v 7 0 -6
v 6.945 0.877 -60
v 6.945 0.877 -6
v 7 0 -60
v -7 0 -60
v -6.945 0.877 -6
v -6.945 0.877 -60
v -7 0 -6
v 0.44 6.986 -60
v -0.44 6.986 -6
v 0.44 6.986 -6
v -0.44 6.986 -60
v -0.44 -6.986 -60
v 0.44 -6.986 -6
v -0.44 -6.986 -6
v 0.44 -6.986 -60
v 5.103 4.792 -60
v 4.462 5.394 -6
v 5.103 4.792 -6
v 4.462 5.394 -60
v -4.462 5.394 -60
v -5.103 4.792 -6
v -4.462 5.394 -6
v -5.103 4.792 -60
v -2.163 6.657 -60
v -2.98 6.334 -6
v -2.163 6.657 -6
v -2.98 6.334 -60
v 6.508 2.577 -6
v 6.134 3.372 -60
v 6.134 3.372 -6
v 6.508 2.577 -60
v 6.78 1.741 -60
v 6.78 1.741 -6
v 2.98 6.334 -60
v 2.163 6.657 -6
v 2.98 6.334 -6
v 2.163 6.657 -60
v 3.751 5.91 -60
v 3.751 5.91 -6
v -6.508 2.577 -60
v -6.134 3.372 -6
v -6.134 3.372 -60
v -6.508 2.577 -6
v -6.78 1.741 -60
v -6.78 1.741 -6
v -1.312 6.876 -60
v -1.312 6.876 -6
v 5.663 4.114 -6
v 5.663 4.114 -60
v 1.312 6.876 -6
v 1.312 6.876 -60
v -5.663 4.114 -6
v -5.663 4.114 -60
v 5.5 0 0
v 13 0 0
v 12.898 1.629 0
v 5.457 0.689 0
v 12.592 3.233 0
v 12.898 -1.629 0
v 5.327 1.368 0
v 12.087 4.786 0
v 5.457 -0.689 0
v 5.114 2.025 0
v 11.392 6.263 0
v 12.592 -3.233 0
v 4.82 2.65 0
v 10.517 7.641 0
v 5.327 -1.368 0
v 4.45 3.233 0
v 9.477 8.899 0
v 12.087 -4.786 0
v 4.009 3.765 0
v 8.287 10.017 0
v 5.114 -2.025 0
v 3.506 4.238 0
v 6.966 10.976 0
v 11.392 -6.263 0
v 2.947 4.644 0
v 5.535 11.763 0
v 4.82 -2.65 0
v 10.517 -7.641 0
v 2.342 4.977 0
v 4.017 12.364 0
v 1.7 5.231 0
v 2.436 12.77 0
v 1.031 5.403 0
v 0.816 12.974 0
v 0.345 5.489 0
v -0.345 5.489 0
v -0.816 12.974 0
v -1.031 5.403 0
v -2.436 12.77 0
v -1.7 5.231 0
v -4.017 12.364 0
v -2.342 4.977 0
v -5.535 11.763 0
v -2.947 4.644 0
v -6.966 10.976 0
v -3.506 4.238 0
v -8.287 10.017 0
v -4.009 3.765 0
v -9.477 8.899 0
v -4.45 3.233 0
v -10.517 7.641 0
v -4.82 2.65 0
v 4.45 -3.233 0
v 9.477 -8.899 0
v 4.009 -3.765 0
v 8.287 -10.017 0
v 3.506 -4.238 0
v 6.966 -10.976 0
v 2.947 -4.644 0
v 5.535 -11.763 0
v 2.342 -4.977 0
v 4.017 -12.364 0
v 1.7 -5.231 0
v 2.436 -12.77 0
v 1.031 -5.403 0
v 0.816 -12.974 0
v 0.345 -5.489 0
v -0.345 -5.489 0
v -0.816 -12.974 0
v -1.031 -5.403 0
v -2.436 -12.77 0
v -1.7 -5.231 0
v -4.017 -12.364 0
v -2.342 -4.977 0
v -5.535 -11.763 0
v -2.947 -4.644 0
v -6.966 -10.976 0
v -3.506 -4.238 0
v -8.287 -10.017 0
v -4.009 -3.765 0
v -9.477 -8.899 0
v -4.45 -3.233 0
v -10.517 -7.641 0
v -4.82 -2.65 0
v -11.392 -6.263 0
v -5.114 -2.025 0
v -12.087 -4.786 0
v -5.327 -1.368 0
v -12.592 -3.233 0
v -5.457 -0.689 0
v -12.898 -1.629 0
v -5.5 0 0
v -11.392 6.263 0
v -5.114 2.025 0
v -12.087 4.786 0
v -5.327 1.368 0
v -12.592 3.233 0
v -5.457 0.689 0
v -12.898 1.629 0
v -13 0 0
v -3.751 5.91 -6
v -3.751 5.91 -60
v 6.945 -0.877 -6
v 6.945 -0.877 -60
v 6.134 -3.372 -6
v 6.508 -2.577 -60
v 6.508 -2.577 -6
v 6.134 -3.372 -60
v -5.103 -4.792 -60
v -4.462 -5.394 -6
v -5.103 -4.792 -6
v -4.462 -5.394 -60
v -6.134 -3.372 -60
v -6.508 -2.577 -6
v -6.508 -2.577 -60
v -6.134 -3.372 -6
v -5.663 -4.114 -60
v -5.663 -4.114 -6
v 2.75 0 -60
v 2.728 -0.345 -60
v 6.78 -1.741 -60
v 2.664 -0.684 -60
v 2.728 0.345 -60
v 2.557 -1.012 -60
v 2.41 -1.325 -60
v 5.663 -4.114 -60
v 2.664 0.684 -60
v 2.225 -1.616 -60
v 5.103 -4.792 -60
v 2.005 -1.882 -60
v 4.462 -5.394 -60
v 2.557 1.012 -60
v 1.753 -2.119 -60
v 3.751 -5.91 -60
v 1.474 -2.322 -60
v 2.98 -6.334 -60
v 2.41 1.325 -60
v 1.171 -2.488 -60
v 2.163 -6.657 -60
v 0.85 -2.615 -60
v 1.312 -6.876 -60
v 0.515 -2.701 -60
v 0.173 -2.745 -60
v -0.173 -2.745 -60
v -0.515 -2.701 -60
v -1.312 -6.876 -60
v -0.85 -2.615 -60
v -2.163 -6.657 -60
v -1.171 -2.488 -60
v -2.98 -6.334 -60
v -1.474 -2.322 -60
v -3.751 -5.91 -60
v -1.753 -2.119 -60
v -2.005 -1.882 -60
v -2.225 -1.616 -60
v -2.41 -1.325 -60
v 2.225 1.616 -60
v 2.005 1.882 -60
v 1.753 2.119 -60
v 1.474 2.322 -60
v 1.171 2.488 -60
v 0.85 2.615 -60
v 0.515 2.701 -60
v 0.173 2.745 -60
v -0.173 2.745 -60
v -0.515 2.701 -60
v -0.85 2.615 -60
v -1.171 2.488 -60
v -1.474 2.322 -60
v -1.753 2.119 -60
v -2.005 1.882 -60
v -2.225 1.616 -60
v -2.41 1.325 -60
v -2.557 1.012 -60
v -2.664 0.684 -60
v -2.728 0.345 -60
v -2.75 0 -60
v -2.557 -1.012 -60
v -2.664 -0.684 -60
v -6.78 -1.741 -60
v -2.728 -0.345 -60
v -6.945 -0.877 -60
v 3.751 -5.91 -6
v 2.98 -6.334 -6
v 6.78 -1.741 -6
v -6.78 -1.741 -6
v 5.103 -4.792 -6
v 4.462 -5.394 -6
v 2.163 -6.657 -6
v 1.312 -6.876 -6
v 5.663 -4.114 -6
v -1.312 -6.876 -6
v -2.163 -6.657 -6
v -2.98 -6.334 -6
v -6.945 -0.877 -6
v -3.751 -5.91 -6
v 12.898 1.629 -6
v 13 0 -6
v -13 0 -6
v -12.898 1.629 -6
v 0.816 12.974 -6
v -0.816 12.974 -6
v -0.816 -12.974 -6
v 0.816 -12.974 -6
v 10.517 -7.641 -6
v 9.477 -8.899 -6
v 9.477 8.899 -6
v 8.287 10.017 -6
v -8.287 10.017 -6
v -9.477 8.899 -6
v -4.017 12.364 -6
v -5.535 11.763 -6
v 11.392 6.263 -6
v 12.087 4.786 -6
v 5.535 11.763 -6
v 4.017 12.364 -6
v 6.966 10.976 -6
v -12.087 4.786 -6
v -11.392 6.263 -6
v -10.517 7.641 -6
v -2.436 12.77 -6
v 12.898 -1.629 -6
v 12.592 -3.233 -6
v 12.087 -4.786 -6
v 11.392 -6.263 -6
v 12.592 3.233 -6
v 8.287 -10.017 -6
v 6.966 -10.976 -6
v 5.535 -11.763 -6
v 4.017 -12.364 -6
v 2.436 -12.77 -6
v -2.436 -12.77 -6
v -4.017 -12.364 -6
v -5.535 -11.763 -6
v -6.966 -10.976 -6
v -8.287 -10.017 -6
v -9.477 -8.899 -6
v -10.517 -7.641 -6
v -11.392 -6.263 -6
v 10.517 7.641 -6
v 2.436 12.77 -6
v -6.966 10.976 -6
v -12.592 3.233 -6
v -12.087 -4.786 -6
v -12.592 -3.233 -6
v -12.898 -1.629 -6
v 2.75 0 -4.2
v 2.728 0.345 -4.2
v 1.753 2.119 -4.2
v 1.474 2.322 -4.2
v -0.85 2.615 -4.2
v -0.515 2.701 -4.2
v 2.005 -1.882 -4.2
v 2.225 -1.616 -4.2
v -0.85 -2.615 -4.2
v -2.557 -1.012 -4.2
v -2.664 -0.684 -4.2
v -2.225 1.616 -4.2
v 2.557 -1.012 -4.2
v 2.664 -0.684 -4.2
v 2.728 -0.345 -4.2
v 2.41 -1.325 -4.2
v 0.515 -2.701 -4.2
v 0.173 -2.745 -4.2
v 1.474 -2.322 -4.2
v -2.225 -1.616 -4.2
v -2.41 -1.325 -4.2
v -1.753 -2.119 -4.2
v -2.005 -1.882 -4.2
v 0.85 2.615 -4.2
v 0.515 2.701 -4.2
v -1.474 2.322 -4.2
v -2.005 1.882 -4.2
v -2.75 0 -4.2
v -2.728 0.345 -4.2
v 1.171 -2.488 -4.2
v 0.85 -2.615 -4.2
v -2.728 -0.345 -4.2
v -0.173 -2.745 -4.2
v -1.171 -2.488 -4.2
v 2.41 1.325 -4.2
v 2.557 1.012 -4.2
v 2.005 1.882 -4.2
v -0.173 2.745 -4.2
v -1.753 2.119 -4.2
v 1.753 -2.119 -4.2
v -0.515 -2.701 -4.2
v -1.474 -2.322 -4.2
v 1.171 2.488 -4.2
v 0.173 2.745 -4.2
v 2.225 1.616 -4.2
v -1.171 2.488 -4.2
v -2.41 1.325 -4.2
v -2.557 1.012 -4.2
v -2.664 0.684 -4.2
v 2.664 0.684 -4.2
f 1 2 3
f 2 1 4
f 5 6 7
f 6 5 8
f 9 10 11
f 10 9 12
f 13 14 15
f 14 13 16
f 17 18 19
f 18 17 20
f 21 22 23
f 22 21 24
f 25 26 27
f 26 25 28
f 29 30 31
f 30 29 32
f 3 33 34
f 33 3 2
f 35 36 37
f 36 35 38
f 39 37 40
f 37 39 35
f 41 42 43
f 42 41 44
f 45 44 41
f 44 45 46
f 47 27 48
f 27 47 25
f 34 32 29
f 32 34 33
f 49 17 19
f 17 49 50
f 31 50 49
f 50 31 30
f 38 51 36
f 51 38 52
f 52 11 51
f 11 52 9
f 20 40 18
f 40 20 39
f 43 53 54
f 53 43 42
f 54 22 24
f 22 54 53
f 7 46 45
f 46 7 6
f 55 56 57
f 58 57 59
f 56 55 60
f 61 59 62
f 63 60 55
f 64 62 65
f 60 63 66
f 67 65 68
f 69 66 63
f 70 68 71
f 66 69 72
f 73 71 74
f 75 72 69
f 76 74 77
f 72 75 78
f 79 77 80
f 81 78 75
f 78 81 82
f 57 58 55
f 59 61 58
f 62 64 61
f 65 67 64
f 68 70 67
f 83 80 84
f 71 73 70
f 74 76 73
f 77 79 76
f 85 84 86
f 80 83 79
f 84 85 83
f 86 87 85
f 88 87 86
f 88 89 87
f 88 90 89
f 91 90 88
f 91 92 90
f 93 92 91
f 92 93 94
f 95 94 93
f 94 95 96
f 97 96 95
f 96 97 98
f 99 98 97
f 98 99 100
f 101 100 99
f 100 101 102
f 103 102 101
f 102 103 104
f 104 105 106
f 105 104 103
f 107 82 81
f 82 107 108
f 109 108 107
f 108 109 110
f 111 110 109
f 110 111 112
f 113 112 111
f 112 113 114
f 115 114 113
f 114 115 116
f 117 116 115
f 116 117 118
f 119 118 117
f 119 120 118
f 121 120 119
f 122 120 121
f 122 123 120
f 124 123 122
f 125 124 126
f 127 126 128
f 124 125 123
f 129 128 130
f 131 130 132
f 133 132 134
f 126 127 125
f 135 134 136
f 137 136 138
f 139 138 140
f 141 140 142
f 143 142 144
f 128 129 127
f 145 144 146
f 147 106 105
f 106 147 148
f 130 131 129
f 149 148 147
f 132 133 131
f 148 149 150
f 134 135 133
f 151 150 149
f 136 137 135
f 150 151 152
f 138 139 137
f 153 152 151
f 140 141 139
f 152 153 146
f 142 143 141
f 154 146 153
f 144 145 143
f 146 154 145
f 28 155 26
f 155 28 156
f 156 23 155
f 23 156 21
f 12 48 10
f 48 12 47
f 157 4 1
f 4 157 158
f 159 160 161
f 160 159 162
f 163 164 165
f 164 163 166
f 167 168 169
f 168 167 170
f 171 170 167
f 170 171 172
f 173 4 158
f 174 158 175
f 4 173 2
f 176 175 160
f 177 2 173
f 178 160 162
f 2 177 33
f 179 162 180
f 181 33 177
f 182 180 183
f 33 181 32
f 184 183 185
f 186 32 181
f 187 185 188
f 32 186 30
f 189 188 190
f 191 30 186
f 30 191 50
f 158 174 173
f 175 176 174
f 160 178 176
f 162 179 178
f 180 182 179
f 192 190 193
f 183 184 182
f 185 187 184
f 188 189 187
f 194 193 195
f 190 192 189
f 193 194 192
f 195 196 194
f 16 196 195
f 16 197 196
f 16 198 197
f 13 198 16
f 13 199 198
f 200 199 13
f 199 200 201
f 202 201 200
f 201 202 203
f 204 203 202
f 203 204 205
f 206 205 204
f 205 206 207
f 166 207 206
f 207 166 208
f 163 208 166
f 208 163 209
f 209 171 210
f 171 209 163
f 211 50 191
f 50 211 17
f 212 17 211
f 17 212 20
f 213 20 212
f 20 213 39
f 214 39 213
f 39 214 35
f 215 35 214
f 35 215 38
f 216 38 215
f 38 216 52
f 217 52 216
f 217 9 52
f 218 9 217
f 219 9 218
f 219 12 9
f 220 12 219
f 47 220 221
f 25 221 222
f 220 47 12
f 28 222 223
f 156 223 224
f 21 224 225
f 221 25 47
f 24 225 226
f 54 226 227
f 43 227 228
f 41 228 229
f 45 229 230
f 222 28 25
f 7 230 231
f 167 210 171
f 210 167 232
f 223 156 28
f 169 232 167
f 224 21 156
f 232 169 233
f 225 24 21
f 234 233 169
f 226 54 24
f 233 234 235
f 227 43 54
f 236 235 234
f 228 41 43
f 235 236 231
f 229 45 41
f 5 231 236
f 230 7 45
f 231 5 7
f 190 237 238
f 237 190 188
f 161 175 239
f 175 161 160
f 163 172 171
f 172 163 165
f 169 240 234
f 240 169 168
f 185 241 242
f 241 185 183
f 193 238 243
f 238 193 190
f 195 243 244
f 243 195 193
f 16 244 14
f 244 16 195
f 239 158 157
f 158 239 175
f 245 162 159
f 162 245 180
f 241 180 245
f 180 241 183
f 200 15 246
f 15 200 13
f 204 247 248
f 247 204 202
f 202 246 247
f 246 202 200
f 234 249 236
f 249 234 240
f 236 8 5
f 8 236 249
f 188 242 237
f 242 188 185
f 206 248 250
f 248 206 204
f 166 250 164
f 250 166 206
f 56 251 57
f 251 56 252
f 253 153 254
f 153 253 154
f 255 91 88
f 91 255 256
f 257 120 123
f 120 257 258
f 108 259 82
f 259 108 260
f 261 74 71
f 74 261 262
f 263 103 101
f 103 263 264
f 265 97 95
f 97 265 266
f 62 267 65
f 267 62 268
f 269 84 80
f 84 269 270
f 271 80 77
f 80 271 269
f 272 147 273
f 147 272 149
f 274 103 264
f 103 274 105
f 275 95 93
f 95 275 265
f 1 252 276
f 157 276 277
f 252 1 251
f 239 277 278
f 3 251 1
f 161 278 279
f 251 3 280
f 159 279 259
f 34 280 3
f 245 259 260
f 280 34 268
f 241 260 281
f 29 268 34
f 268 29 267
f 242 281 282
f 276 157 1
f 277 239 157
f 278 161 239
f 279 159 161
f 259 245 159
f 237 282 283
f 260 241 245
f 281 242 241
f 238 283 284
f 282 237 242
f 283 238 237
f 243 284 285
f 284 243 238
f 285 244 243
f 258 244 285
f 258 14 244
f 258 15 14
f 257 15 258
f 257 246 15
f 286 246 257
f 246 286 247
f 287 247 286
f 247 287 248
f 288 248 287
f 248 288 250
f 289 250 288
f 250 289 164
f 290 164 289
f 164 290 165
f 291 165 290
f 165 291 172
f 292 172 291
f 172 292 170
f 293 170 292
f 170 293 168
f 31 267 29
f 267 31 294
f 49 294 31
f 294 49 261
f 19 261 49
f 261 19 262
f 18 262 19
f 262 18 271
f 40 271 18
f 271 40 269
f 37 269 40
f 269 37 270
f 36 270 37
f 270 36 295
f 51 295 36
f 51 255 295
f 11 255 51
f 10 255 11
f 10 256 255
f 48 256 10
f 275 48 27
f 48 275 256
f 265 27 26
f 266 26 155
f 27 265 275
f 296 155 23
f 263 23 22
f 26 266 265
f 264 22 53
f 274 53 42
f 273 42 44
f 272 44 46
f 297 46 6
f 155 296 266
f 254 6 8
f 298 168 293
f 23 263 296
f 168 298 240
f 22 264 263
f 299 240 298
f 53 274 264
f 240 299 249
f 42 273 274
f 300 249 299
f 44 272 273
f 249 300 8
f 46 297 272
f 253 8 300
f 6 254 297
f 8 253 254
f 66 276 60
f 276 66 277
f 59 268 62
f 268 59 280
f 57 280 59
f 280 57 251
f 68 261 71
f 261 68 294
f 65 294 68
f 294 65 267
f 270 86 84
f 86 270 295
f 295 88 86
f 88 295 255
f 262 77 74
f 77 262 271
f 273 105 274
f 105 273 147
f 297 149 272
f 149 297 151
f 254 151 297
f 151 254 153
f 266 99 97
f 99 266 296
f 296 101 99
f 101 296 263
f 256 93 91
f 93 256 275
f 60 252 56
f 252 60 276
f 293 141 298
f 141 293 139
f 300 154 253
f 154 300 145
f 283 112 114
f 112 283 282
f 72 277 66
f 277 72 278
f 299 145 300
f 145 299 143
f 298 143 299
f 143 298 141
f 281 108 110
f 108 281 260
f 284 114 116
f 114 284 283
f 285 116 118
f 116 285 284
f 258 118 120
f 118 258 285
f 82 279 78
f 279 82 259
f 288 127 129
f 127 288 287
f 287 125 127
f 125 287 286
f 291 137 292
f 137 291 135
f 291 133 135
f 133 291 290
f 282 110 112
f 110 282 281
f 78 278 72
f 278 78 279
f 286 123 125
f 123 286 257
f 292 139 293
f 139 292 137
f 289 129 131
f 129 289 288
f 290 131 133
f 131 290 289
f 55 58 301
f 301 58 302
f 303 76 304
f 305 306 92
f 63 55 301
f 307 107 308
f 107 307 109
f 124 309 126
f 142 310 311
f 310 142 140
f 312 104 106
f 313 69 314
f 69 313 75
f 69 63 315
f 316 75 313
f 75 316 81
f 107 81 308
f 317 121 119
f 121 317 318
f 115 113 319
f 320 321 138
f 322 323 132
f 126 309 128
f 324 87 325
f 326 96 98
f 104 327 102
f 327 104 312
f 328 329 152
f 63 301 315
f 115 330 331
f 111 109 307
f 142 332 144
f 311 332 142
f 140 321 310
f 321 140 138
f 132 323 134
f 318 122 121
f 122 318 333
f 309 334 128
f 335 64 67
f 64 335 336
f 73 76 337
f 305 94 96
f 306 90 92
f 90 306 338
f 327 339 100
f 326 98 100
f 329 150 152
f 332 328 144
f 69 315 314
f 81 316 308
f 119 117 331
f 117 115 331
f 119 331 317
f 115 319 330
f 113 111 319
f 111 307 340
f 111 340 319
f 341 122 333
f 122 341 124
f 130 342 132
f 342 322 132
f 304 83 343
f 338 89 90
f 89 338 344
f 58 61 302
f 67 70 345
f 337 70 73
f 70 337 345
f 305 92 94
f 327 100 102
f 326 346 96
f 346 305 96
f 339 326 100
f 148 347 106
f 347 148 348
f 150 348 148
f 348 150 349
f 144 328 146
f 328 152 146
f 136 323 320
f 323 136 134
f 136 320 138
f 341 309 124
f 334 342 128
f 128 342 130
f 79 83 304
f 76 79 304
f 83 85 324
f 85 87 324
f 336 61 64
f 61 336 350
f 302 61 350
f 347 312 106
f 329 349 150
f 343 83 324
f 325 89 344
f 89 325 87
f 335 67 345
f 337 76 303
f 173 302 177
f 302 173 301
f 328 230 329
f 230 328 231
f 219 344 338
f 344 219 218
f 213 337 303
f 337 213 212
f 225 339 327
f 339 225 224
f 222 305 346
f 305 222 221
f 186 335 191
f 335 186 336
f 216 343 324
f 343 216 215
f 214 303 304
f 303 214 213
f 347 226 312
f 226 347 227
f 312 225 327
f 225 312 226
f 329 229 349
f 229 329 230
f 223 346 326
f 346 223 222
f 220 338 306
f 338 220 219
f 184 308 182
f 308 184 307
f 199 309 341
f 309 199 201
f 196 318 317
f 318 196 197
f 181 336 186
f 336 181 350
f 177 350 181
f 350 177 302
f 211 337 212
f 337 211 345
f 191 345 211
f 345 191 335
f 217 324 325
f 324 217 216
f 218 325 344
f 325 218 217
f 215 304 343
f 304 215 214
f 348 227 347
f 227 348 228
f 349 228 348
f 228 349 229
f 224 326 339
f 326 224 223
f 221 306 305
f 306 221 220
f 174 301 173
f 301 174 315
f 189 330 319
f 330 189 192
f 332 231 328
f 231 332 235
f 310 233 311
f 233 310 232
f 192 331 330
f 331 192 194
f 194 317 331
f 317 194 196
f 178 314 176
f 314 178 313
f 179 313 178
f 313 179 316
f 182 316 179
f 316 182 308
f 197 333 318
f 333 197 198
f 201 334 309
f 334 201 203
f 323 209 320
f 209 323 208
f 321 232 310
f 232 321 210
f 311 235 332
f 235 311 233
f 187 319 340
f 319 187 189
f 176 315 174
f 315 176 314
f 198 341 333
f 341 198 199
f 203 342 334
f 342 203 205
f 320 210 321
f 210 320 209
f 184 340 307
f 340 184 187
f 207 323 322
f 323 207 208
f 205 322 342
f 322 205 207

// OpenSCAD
$fn = 50;


difference() {
	union() {
		translate(v = [0, 0, -60.0000000000]) {
			cylinder(h = 60, r = 7.0000000000);
		}
		translate(v = [0, 0, -6.0000000000]) {
			cylinder(h = 6, r = 13.0000000000);
		}
	}
	union() {
		translate(v = [0, 0, 0]) {
			rotate(a = [0, 0, 0]) {
				difference() {
					union() {
						#translate(v = [0, 0, -60.0000000000]) {
							cylinder(h = 60, r = 2.2500000000);
						}
						#translate(v = [0, 0, -4.2000000000]) {
							cylinder(h = 4.2000000000, r1 = 2.7500000000, r2 = 5.5000000000);
						}
						#translate(v = [0, 0, -60.0000000000]) {
							cylinder(h = 60, r = 2.7500000000);
						}
						#translate(v = [0, 0, -60.0000000000]) {
							cylinder(h = 60, r = 2.2500000000);
						}
					}
					union();
				}
			}
		}
	}
}
